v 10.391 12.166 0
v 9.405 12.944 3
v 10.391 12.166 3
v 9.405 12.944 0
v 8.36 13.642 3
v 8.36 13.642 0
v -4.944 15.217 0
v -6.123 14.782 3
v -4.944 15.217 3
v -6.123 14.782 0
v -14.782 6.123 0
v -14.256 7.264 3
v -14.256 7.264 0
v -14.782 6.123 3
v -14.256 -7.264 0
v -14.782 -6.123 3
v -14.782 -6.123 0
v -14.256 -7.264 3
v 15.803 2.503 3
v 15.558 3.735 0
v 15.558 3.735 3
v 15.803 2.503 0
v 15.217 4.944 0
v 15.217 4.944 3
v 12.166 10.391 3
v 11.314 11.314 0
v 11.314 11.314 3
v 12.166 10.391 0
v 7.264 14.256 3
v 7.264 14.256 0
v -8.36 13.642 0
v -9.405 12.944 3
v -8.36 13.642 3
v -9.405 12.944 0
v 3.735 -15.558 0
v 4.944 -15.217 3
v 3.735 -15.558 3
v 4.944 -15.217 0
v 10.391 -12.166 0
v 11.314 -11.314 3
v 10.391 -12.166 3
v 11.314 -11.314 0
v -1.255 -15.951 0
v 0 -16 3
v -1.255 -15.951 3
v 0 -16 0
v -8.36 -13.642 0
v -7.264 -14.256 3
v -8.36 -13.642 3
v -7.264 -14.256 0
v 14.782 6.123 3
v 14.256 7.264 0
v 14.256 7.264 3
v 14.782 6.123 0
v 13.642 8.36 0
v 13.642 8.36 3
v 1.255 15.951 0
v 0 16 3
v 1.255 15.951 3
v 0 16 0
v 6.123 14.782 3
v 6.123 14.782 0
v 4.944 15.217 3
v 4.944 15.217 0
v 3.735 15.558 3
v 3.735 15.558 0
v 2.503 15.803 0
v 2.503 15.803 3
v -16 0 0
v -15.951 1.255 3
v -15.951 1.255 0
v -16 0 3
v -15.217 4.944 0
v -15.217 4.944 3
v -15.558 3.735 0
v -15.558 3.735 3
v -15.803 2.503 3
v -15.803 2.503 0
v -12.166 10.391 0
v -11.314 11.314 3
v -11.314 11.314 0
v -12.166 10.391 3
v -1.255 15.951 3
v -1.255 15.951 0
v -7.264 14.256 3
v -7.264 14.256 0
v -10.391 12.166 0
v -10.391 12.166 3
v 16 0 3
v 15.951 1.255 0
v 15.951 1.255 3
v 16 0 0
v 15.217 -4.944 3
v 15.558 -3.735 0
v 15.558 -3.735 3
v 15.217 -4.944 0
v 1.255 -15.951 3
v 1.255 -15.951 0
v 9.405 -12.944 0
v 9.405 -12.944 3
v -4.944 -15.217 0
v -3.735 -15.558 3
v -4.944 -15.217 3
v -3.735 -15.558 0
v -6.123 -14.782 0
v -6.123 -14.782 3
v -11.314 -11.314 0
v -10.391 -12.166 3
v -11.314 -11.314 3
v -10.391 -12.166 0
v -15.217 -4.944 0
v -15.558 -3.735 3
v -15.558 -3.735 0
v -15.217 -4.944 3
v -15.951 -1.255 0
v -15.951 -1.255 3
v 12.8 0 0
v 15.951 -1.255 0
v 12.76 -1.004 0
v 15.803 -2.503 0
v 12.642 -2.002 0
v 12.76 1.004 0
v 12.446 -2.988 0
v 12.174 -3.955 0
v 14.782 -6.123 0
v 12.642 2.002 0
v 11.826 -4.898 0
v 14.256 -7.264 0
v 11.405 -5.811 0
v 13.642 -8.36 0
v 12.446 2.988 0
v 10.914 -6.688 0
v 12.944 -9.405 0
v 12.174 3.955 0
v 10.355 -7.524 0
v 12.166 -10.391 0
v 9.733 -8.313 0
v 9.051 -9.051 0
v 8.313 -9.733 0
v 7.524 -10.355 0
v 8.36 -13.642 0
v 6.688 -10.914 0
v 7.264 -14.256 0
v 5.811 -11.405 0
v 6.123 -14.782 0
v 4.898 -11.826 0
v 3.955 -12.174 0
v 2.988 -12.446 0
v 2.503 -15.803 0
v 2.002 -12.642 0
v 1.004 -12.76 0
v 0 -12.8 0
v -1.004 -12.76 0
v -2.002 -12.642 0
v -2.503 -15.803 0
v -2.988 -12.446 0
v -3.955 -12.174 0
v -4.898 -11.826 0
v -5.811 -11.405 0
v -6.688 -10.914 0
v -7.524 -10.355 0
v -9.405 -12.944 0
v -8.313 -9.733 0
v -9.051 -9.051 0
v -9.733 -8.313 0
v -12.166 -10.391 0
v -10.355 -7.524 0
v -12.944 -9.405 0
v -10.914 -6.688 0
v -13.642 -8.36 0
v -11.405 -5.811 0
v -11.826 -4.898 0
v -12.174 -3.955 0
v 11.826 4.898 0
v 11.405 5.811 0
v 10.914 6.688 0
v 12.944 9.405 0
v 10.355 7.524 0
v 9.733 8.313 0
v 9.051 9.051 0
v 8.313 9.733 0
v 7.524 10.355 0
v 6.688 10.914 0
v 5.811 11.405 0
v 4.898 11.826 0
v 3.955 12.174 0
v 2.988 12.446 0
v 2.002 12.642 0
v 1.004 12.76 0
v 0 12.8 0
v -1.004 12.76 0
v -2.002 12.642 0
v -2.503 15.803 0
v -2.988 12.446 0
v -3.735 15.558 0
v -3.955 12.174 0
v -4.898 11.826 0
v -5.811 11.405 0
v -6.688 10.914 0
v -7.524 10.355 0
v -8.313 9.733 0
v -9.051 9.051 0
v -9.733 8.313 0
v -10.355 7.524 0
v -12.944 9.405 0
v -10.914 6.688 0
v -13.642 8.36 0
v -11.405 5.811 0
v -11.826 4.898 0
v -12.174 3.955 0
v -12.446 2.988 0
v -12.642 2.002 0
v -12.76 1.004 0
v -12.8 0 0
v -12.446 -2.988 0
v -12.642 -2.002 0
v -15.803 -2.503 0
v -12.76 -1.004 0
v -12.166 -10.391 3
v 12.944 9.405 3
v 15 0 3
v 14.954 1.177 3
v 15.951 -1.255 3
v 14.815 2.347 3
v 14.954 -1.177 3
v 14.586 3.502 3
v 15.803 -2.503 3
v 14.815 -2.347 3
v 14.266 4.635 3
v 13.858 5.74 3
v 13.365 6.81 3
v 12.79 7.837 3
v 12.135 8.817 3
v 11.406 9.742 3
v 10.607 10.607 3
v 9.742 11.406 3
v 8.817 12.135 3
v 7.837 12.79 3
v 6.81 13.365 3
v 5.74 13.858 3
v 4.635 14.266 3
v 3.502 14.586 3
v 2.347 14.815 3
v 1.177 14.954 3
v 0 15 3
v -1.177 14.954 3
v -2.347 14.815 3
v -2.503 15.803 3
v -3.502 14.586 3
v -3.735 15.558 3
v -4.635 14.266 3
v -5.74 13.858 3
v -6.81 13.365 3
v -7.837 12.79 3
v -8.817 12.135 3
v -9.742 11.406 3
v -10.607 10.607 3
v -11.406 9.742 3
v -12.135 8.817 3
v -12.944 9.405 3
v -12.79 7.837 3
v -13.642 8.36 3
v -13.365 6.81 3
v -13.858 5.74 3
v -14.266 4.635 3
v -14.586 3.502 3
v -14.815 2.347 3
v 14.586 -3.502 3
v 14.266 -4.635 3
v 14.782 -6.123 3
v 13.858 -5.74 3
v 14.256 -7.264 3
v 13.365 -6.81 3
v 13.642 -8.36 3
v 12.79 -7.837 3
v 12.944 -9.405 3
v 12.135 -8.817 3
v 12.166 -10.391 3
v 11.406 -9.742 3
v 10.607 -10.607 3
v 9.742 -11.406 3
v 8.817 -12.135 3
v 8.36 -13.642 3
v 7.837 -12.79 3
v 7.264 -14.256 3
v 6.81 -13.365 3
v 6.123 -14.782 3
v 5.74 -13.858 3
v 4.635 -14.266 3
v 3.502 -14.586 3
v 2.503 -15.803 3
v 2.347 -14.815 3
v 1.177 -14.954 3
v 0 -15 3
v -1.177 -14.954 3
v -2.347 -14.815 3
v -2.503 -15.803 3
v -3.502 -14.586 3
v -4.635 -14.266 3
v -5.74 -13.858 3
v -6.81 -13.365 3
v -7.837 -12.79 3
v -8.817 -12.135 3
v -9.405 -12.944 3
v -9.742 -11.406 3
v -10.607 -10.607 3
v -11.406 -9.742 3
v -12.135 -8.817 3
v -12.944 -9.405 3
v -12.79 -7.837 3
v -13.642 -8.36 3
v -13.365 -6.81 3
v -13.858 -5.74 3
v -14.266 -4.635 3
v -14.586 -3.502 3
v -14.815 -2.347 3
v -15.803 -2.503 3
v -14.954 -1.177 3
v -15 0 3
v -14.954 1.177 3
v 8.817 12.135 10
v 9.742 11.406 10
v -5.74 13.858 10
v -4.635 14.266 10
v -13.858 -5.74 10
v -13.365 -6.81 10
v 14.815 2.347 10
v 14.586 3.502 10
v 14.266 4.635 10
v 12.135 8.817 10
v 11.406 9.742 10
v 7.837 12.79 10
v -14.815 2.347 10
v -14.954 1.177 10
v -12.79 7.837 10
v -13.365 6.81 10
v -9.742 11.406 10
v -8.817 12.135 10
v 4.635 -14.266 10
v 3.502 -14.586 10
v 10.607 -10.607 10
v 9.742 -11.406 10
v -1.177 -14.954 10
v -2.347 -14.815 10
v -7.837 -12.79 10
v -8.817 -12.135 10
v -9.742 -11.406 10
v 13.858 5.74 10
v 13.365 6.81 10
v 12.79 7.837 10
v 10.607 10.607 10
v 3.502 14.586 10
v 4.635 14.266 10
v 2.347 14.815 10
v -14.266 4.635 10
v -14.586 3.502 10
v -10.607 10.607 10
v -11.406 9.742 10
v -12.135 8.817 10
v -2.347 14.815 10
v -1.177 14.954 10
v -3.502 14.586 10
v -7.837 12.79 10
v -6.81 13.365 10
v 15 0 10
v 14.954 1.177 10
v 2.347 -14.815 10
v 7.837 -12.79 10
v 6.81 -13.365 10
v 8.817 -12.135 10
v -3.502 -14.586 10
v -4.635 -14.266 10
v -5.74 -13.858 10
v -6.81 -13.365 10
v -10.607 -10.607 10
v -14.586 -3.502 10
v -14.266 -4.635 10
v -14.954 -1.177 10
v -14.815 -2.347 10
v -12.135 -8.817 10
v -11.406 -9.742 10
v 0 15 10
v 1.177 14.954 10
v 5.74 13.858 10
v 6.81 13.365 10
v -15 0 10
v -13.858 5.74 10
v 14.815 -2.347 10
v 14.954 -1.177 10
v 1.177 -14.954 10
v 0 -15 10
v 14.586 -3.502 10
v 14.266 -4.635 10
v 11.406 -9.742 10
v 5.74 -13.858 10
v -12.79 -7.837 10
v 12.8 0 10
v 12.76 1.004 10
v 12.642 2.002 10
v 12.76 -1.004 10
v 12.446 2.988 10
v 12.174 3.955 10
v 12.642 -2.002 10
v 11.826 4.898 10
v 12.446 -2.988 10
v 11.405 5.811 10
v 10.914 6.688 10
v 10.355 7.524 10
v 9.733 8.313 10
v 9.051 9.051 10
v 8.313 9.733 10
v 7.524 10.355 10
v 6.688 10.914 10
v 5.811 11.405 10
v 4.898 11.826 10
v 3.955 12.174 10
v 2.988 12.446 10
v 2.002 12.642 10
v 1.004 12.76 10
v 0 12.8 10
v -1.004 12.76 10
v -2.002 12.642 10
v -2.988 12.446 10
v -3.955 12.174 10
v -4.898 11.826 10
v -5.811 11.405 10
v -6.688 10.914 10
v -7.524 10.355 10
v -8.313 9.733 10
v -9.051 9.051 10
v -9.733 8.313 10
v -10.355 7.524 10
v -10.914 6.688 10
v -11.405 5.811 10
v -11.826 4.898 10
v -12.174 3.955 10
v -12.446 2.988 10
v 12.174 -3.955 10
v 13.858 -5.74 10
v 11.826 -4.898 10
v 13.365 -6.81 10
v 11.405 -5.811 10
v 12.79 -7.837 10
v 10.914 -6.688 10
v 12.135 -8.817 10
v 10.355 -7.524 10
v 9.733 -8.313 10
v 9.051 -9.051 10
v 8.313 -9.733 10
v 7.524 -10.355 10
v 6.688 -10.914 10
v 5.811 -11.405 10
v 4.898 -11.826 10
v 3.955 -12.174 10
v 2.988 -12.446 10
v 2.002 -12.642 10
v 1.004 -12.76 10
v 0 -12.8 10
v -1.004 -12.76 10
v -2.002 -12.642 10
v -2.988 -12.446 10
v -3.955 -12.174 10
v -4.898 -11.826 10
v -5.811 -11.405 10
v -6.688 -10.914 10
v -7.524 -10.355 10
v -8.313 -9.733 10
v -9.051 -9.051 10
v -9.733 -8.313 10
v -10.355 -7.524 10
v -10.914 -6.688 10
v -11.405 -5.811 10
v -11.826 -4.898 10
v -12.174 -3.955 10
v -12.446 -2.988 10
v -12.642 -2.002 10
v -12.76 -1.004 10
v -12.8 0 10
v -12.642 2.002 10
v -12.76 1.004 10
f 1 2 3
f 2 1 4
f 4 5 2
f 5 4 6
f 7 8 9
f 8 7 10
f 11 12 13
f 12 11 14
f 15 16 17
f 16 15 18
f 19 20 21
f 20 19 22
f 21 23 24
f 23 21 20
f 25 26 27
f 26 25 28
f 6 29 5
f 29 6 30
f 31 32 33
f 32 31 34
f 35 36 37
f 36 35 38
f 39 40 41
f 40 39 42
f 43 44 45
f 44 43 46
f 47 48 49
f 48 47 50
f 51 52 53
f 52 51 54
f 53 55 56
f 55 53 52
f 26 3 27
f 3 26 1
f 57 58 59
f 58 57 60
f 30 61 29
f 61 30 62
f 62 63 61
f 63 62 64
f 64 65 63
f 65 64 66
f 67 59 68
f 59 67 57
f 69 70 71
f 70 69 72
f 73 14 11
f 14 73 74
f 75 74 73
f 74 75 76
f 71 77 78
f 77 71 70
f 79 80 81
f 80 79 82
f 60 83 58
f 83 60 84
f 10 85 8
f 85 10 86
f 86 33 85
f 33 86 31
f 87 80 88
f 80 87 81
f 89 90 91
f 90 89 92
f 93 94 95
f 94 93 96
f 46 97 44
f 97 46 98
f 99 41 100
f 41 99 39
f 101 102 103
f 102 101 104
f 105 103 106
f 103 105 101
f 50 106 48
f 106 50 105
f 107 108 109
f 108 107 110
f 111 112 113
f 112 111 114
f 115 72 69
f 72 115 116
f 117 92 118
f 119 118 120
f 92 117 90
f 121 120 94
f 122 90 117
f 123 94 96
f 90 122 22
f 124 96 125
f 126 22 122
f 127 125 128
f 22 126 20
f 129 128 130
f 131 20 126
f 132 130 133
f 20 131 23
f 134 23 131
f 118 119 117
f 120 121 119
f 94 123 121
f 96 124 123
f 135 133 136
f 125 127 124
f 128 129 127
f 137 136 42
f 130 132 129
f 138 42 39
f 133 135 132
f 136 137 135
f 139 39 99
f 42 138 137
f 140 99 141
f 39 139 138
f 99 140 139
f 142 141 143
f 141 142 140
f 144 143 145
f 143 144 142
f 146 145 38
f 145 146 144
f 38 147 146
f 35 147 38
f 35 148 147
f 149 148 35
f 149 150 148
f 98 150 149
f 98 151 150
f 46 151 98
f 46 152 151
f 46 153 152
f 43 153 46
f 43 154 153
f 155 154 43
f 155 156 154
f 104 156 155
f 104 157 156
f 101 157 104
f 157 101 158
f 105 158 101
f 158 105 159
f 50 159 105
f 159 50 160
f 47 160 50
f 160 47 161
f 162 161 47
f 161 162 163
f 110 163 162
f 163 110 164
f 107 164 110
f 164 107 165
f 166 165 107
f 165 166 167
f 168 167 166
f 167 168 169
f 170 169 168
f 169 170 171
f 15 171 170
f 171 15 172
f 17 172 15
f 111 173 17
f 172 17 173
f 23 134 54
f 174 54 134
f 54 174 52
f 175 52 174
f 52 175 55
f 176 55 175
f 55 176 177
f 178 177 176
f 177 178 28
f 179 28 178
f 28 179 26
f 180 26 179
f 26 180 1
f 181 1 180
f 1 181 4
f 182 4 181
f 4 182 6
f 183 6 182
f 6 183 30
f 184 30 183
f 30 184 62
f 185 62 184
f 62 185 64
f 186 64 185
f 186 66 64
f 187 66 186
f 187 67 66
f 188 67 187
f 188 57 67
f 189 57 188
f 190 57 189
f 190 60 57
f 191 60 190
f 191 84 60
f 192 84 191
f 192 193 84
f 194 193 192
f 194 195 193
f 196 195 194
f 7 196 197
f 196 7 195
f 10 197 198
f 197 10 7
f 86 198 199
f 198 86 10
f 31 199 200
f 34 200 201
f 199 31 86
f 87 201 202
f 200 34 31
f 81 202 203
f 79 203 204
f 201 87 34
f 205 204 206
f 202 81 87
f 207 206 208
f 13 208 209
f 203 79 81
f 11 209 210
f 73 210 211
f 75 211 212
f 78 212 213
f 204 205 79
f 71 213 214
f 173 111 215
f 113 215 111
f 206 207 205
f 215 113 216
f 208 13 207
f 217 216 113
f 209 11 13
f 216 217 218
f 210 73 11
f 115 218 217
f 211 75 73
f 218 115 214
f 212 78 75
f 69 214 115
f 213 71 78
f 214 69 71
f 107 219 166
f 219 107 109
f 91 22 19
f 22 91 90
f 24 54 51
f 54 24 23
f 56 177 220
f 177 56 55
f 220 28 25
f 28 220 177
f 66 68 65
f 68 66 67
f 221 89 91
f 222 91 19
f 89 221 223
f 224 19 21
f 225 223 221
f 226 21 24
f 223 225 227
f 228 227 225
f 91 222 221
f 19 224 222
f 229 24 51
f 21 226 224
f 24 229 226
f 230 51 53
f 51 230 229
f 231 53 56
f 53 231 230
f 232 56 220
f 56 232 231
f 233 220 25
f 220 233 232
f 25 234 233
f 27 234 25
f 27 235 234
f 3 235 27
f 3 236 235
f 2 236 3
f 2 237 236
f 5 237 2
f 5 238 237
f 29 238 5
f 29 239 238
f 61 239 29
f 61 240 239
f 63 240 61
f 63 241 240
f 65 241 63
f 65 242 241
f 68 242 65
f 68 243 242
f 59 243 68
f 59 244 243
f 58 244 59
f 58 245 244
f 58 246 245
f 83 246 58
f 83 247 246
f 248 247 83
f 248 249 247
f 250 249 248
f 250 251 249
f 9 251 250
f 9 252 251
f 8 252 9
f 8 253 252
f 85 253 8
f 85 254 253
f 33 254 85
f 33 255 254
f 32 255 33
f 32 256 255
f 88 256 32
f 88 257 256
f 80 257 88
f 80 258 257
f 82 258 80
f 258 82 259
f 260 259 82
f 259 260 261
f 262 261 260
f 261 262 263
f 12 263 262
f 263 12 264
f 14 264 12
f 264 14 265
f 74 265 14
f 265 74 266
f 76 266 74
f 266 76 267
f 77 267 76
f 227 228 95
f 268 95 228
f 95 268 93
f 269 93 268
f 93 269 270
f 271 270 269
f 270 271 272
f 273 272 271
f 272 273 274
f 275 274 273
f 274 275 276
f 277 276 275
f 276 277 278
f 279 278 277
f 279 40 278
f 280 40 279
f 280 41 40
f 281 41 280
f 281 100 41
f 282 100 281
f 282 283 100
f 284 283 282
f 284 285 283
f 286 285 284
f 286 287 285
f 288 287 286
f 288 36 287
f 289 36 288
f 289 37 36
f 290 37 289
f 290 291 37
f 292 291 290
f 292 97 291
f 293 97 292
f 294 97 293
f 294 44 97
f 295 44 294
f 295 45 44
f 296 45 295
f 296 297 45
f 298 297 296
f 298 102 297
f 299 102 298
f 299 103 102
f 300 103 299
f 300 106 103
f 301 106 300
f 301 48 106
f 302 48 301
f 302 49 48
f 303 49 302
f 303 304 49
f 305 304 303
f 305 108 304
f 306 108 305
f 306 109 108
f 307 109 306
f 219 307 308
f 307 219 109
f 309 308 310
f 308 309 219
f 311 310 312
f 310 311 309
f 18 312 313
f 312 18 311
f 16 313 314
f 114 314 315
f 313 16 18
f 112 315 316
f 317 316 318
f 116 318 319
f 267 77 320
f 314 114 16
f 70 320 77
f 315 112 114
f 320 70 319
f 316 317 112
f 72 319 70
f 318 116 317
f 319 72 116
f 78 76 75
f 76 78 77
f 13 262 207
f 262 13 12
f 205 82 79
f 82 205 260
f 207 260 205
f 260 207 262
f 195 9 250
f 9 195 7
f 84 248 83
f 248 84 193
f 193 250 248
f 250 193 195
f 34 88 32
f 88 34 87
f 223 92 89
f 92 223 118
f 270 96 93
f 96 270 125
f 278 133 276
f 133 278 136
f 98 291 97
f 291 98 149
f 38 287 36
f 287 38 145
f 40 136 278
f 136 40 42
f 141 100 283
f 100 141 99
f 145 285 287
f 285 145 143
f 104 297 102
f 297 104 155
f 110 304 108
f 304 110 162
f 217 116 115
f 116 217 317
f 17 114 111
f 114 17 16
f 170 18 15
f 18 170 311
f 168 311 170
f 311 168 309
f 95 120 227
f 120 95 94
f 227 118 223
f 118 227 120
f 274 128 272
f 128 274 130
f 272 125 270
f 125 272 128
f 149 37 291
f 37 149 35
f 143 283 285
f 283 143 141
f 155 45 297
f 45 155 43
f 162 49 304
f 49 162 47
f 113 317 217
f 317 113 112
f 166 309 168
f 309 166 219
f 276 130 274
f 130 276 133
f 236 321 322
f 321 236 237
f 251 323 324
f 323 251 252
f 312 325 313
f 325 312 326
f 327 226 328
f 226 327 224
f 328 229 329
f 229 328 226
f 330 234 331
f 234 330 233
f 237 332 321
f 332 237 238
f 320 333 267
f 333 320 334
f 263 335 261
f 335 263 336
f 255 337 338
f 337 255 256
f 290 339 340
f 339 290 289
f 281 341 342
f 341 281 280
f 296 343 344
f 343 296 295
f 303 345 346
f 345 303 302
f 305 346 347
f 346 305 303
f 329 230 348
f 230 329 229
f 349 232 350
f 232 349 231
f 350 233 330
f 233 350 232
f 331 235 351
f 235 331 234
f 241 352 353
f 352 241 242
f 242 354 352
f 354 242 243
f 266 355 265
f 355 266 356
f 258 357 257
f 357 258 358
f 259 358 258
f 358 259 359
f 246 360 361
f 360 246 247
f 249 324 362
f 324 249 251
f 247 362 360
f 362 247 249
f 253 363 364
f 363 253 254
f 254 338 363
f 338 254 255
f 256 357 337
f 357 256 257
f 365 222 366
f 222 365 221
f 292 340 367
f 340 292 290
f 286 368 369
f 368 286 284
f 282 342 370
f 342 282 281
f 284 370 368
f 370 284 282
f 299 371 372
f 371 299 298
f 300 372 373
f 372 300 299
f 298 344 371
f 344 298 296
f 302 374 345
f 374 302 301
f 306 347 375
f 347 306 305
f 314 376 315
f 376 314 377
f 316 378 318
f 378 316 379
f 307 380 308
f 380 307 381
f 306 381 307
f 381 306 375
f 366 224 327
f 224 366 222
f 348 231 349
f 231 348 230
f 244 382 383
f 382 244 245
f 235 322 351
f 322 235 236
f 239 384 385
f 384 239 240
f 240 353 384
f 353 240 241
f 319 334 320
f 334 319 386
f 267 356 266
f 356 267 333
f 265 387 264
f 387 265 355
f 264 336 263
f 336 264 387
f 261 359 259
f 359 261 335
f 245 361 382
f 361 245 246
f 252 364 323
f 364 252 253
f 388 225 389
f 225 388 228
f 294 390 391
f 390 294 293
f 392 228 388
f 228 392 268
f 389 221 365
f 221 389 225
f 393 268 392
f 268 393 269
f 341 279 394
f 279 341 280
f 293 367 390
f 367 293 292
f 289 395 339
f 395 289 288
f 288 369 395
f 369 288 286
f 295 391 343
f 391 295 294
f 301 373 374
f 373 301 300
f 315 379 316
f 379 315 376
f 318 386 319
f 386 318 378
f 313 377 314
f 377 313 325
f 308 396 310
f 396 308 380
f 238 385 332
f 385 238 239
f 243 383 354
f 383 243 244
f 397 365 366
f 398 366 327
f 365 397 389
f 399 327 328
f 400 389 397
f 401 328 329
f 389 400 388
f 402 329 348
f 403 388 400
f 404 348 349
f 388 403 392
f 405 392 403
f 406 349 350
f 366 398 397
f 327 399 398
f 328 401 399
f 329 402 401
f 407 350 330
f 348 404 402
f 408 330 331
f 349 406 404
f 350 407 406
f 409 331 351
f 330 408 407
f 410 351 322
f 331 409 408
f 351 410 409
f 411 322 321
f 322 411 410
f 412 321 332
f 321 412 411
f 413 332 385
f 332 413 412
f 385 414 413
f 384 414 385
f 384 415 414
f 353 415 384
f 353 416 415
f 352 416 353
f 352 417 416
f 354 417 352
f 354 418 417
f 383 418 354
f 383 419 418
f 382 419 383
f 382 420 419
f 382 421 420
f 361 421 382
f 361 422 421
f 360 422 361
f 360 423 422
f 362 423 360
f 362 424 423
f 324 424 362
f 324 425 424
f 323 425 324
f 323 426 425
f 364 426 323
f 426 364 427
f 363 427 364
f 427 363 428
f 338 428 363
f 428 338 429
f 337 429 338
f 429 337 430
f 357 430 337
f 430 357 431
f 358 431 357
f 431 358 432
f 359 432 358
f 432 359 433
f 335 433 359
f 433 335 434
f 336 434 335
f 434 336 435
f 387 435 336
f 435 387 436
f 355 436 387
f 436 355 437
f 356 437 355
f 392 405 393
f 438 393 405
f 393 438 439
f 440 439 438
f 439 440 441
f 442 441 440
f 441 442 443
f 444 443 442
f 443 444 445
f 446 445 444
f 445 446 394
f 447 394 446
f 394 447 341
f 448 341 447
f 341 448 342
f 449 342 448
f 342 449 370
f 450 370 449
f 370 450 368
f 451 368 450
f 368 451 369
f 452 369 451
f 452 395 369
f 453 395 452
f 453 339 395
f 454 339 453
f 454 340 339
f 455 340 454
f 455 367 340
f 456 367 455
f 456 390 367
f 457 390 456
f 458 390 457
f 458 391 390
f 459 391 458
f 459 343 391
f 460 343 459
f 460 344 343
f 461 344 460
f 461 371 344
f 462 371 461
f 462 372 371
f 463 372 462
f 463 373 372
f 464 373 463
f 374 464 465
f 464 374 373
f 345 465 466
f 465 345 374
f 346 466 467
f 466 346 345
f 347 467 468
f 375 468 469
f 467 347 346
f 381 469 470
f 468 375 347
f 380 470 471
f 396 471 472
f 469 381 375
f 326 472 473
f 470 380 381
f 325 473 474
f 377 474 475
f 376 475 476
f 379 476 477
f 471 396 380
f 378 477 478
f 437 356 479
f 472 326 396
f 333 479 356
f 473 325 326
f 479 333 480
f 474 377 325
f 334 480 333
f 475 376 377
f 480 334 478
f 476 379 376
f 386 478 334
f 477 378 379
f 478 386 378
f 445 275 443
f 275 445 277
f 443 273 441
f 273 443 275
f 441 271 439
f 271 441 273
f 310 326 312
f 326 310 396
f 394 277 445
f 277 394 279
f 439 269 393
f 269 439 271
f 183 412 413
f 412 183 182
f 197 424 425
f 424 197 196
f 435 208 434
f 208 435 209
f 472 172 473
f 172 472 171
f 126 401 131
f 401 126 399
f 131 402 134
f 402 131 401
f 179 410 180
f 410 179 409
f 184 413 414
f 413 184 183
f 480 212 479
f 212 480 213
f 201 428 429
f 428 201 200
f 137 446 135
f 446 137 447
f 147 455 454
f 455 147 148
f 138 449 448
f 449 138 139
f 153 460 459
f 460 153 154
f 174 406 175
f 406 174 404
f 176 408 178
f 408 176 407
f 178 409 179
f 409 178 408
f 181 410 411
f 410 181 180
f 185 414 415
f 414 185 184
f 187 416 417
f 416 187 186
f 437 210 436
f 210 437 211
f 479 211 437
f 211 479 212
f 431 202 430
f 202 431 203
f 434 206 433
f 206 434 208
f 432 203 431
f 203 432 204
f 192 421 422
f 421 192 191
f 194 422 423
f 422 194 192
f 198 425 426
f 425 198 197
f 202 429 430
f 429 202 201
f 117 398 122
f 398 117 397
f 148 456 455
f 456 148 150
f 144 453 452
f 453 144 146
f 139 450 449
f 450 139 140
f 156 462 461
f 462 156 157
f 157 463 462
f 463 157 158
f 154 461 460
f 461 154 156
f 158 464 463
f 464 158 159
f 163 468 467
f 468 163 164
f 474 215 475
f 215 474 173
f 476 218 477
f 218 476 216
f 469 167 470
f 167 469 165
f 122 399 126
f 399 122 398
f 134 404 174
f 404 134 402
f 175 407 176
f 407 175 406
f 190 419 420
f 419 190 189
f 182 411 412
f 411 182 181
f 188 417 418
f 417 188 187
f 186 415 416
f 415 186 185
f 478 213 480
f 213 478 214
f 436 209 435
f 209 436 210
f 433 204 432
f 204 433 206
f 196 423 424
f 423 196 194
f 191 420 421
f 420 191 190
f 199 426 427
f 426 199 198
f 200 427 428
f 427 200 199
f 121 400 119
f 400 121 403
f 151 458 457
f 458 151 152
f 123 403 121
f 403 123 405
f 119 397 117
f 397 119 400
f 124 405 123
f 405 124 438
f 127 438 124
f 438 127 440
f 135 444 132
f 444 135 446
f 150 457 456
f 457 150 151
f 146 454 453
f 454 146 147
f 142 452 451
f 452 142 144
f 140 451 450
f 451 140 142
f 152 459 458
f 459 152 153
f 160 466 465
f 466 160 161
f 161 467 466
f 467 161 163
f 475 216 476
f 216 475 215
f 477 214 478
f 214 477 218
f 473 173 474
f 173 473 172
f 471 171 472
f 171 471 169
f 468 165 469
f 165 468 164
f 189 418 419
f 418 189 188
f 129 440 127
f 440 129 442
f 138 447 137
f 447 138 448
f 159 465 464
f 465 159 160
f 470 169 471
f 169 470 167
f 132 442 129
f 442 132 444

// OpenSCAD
$fn=80;

/**
 This is a simple ring which helps bridging 2 poles of 3.2m and 3.8m each.
 Result is near 7m
 */

module ring() {
    difference() {
        cylinder(d=30, h=10);
        cylinder(d=25.6, h=15.01);
    }
}

module ringTop() {
    difference() {
        union() {
            cylinder(d=32, h=3);
            cylinder(d=30, h=10);
        }
        cylinder(d=25.6, h=15.01);
    }
}

module supportCable() {
    union() {
        difference() {
            cylinder(d=38, h=10);
            cylinder(d=32, h=10.01);
            translate([-35,-35,0]) rotate([0,0,45]) cube([50,50,10.01]);
        }
        
        translate([30,0,0]) {
            difference() {
                cylinder(d=18, h=10);
                cylinder(d=12, h=10.01);
                translate([35,-35,0]) rotate([0,0,45]) cube([50,50,10.01]);
            }
        }
                
        difference() {
            union() {
                translate([21,10,0]) cylinder(d=30, h=10);
                translate([21,-10,0]) cylinder(d=30, h=10);
            }
            translate([20,8,0]) cylinder(d=10, h=10.01);
            translate([20,-8,0]) cylinder(d=10, h=10.01);
            cylinder(d=36, h=10.01);
            translate([30,0,0]) cylinder(d=16, h=10.01);
            translate([0,5,0]) cube([50,25,10.01]);
            translate([0,-5-25,0]) cube([50,25,10.01]);
        }
    }
}

//ring();
ringTop();
// supportCable();
